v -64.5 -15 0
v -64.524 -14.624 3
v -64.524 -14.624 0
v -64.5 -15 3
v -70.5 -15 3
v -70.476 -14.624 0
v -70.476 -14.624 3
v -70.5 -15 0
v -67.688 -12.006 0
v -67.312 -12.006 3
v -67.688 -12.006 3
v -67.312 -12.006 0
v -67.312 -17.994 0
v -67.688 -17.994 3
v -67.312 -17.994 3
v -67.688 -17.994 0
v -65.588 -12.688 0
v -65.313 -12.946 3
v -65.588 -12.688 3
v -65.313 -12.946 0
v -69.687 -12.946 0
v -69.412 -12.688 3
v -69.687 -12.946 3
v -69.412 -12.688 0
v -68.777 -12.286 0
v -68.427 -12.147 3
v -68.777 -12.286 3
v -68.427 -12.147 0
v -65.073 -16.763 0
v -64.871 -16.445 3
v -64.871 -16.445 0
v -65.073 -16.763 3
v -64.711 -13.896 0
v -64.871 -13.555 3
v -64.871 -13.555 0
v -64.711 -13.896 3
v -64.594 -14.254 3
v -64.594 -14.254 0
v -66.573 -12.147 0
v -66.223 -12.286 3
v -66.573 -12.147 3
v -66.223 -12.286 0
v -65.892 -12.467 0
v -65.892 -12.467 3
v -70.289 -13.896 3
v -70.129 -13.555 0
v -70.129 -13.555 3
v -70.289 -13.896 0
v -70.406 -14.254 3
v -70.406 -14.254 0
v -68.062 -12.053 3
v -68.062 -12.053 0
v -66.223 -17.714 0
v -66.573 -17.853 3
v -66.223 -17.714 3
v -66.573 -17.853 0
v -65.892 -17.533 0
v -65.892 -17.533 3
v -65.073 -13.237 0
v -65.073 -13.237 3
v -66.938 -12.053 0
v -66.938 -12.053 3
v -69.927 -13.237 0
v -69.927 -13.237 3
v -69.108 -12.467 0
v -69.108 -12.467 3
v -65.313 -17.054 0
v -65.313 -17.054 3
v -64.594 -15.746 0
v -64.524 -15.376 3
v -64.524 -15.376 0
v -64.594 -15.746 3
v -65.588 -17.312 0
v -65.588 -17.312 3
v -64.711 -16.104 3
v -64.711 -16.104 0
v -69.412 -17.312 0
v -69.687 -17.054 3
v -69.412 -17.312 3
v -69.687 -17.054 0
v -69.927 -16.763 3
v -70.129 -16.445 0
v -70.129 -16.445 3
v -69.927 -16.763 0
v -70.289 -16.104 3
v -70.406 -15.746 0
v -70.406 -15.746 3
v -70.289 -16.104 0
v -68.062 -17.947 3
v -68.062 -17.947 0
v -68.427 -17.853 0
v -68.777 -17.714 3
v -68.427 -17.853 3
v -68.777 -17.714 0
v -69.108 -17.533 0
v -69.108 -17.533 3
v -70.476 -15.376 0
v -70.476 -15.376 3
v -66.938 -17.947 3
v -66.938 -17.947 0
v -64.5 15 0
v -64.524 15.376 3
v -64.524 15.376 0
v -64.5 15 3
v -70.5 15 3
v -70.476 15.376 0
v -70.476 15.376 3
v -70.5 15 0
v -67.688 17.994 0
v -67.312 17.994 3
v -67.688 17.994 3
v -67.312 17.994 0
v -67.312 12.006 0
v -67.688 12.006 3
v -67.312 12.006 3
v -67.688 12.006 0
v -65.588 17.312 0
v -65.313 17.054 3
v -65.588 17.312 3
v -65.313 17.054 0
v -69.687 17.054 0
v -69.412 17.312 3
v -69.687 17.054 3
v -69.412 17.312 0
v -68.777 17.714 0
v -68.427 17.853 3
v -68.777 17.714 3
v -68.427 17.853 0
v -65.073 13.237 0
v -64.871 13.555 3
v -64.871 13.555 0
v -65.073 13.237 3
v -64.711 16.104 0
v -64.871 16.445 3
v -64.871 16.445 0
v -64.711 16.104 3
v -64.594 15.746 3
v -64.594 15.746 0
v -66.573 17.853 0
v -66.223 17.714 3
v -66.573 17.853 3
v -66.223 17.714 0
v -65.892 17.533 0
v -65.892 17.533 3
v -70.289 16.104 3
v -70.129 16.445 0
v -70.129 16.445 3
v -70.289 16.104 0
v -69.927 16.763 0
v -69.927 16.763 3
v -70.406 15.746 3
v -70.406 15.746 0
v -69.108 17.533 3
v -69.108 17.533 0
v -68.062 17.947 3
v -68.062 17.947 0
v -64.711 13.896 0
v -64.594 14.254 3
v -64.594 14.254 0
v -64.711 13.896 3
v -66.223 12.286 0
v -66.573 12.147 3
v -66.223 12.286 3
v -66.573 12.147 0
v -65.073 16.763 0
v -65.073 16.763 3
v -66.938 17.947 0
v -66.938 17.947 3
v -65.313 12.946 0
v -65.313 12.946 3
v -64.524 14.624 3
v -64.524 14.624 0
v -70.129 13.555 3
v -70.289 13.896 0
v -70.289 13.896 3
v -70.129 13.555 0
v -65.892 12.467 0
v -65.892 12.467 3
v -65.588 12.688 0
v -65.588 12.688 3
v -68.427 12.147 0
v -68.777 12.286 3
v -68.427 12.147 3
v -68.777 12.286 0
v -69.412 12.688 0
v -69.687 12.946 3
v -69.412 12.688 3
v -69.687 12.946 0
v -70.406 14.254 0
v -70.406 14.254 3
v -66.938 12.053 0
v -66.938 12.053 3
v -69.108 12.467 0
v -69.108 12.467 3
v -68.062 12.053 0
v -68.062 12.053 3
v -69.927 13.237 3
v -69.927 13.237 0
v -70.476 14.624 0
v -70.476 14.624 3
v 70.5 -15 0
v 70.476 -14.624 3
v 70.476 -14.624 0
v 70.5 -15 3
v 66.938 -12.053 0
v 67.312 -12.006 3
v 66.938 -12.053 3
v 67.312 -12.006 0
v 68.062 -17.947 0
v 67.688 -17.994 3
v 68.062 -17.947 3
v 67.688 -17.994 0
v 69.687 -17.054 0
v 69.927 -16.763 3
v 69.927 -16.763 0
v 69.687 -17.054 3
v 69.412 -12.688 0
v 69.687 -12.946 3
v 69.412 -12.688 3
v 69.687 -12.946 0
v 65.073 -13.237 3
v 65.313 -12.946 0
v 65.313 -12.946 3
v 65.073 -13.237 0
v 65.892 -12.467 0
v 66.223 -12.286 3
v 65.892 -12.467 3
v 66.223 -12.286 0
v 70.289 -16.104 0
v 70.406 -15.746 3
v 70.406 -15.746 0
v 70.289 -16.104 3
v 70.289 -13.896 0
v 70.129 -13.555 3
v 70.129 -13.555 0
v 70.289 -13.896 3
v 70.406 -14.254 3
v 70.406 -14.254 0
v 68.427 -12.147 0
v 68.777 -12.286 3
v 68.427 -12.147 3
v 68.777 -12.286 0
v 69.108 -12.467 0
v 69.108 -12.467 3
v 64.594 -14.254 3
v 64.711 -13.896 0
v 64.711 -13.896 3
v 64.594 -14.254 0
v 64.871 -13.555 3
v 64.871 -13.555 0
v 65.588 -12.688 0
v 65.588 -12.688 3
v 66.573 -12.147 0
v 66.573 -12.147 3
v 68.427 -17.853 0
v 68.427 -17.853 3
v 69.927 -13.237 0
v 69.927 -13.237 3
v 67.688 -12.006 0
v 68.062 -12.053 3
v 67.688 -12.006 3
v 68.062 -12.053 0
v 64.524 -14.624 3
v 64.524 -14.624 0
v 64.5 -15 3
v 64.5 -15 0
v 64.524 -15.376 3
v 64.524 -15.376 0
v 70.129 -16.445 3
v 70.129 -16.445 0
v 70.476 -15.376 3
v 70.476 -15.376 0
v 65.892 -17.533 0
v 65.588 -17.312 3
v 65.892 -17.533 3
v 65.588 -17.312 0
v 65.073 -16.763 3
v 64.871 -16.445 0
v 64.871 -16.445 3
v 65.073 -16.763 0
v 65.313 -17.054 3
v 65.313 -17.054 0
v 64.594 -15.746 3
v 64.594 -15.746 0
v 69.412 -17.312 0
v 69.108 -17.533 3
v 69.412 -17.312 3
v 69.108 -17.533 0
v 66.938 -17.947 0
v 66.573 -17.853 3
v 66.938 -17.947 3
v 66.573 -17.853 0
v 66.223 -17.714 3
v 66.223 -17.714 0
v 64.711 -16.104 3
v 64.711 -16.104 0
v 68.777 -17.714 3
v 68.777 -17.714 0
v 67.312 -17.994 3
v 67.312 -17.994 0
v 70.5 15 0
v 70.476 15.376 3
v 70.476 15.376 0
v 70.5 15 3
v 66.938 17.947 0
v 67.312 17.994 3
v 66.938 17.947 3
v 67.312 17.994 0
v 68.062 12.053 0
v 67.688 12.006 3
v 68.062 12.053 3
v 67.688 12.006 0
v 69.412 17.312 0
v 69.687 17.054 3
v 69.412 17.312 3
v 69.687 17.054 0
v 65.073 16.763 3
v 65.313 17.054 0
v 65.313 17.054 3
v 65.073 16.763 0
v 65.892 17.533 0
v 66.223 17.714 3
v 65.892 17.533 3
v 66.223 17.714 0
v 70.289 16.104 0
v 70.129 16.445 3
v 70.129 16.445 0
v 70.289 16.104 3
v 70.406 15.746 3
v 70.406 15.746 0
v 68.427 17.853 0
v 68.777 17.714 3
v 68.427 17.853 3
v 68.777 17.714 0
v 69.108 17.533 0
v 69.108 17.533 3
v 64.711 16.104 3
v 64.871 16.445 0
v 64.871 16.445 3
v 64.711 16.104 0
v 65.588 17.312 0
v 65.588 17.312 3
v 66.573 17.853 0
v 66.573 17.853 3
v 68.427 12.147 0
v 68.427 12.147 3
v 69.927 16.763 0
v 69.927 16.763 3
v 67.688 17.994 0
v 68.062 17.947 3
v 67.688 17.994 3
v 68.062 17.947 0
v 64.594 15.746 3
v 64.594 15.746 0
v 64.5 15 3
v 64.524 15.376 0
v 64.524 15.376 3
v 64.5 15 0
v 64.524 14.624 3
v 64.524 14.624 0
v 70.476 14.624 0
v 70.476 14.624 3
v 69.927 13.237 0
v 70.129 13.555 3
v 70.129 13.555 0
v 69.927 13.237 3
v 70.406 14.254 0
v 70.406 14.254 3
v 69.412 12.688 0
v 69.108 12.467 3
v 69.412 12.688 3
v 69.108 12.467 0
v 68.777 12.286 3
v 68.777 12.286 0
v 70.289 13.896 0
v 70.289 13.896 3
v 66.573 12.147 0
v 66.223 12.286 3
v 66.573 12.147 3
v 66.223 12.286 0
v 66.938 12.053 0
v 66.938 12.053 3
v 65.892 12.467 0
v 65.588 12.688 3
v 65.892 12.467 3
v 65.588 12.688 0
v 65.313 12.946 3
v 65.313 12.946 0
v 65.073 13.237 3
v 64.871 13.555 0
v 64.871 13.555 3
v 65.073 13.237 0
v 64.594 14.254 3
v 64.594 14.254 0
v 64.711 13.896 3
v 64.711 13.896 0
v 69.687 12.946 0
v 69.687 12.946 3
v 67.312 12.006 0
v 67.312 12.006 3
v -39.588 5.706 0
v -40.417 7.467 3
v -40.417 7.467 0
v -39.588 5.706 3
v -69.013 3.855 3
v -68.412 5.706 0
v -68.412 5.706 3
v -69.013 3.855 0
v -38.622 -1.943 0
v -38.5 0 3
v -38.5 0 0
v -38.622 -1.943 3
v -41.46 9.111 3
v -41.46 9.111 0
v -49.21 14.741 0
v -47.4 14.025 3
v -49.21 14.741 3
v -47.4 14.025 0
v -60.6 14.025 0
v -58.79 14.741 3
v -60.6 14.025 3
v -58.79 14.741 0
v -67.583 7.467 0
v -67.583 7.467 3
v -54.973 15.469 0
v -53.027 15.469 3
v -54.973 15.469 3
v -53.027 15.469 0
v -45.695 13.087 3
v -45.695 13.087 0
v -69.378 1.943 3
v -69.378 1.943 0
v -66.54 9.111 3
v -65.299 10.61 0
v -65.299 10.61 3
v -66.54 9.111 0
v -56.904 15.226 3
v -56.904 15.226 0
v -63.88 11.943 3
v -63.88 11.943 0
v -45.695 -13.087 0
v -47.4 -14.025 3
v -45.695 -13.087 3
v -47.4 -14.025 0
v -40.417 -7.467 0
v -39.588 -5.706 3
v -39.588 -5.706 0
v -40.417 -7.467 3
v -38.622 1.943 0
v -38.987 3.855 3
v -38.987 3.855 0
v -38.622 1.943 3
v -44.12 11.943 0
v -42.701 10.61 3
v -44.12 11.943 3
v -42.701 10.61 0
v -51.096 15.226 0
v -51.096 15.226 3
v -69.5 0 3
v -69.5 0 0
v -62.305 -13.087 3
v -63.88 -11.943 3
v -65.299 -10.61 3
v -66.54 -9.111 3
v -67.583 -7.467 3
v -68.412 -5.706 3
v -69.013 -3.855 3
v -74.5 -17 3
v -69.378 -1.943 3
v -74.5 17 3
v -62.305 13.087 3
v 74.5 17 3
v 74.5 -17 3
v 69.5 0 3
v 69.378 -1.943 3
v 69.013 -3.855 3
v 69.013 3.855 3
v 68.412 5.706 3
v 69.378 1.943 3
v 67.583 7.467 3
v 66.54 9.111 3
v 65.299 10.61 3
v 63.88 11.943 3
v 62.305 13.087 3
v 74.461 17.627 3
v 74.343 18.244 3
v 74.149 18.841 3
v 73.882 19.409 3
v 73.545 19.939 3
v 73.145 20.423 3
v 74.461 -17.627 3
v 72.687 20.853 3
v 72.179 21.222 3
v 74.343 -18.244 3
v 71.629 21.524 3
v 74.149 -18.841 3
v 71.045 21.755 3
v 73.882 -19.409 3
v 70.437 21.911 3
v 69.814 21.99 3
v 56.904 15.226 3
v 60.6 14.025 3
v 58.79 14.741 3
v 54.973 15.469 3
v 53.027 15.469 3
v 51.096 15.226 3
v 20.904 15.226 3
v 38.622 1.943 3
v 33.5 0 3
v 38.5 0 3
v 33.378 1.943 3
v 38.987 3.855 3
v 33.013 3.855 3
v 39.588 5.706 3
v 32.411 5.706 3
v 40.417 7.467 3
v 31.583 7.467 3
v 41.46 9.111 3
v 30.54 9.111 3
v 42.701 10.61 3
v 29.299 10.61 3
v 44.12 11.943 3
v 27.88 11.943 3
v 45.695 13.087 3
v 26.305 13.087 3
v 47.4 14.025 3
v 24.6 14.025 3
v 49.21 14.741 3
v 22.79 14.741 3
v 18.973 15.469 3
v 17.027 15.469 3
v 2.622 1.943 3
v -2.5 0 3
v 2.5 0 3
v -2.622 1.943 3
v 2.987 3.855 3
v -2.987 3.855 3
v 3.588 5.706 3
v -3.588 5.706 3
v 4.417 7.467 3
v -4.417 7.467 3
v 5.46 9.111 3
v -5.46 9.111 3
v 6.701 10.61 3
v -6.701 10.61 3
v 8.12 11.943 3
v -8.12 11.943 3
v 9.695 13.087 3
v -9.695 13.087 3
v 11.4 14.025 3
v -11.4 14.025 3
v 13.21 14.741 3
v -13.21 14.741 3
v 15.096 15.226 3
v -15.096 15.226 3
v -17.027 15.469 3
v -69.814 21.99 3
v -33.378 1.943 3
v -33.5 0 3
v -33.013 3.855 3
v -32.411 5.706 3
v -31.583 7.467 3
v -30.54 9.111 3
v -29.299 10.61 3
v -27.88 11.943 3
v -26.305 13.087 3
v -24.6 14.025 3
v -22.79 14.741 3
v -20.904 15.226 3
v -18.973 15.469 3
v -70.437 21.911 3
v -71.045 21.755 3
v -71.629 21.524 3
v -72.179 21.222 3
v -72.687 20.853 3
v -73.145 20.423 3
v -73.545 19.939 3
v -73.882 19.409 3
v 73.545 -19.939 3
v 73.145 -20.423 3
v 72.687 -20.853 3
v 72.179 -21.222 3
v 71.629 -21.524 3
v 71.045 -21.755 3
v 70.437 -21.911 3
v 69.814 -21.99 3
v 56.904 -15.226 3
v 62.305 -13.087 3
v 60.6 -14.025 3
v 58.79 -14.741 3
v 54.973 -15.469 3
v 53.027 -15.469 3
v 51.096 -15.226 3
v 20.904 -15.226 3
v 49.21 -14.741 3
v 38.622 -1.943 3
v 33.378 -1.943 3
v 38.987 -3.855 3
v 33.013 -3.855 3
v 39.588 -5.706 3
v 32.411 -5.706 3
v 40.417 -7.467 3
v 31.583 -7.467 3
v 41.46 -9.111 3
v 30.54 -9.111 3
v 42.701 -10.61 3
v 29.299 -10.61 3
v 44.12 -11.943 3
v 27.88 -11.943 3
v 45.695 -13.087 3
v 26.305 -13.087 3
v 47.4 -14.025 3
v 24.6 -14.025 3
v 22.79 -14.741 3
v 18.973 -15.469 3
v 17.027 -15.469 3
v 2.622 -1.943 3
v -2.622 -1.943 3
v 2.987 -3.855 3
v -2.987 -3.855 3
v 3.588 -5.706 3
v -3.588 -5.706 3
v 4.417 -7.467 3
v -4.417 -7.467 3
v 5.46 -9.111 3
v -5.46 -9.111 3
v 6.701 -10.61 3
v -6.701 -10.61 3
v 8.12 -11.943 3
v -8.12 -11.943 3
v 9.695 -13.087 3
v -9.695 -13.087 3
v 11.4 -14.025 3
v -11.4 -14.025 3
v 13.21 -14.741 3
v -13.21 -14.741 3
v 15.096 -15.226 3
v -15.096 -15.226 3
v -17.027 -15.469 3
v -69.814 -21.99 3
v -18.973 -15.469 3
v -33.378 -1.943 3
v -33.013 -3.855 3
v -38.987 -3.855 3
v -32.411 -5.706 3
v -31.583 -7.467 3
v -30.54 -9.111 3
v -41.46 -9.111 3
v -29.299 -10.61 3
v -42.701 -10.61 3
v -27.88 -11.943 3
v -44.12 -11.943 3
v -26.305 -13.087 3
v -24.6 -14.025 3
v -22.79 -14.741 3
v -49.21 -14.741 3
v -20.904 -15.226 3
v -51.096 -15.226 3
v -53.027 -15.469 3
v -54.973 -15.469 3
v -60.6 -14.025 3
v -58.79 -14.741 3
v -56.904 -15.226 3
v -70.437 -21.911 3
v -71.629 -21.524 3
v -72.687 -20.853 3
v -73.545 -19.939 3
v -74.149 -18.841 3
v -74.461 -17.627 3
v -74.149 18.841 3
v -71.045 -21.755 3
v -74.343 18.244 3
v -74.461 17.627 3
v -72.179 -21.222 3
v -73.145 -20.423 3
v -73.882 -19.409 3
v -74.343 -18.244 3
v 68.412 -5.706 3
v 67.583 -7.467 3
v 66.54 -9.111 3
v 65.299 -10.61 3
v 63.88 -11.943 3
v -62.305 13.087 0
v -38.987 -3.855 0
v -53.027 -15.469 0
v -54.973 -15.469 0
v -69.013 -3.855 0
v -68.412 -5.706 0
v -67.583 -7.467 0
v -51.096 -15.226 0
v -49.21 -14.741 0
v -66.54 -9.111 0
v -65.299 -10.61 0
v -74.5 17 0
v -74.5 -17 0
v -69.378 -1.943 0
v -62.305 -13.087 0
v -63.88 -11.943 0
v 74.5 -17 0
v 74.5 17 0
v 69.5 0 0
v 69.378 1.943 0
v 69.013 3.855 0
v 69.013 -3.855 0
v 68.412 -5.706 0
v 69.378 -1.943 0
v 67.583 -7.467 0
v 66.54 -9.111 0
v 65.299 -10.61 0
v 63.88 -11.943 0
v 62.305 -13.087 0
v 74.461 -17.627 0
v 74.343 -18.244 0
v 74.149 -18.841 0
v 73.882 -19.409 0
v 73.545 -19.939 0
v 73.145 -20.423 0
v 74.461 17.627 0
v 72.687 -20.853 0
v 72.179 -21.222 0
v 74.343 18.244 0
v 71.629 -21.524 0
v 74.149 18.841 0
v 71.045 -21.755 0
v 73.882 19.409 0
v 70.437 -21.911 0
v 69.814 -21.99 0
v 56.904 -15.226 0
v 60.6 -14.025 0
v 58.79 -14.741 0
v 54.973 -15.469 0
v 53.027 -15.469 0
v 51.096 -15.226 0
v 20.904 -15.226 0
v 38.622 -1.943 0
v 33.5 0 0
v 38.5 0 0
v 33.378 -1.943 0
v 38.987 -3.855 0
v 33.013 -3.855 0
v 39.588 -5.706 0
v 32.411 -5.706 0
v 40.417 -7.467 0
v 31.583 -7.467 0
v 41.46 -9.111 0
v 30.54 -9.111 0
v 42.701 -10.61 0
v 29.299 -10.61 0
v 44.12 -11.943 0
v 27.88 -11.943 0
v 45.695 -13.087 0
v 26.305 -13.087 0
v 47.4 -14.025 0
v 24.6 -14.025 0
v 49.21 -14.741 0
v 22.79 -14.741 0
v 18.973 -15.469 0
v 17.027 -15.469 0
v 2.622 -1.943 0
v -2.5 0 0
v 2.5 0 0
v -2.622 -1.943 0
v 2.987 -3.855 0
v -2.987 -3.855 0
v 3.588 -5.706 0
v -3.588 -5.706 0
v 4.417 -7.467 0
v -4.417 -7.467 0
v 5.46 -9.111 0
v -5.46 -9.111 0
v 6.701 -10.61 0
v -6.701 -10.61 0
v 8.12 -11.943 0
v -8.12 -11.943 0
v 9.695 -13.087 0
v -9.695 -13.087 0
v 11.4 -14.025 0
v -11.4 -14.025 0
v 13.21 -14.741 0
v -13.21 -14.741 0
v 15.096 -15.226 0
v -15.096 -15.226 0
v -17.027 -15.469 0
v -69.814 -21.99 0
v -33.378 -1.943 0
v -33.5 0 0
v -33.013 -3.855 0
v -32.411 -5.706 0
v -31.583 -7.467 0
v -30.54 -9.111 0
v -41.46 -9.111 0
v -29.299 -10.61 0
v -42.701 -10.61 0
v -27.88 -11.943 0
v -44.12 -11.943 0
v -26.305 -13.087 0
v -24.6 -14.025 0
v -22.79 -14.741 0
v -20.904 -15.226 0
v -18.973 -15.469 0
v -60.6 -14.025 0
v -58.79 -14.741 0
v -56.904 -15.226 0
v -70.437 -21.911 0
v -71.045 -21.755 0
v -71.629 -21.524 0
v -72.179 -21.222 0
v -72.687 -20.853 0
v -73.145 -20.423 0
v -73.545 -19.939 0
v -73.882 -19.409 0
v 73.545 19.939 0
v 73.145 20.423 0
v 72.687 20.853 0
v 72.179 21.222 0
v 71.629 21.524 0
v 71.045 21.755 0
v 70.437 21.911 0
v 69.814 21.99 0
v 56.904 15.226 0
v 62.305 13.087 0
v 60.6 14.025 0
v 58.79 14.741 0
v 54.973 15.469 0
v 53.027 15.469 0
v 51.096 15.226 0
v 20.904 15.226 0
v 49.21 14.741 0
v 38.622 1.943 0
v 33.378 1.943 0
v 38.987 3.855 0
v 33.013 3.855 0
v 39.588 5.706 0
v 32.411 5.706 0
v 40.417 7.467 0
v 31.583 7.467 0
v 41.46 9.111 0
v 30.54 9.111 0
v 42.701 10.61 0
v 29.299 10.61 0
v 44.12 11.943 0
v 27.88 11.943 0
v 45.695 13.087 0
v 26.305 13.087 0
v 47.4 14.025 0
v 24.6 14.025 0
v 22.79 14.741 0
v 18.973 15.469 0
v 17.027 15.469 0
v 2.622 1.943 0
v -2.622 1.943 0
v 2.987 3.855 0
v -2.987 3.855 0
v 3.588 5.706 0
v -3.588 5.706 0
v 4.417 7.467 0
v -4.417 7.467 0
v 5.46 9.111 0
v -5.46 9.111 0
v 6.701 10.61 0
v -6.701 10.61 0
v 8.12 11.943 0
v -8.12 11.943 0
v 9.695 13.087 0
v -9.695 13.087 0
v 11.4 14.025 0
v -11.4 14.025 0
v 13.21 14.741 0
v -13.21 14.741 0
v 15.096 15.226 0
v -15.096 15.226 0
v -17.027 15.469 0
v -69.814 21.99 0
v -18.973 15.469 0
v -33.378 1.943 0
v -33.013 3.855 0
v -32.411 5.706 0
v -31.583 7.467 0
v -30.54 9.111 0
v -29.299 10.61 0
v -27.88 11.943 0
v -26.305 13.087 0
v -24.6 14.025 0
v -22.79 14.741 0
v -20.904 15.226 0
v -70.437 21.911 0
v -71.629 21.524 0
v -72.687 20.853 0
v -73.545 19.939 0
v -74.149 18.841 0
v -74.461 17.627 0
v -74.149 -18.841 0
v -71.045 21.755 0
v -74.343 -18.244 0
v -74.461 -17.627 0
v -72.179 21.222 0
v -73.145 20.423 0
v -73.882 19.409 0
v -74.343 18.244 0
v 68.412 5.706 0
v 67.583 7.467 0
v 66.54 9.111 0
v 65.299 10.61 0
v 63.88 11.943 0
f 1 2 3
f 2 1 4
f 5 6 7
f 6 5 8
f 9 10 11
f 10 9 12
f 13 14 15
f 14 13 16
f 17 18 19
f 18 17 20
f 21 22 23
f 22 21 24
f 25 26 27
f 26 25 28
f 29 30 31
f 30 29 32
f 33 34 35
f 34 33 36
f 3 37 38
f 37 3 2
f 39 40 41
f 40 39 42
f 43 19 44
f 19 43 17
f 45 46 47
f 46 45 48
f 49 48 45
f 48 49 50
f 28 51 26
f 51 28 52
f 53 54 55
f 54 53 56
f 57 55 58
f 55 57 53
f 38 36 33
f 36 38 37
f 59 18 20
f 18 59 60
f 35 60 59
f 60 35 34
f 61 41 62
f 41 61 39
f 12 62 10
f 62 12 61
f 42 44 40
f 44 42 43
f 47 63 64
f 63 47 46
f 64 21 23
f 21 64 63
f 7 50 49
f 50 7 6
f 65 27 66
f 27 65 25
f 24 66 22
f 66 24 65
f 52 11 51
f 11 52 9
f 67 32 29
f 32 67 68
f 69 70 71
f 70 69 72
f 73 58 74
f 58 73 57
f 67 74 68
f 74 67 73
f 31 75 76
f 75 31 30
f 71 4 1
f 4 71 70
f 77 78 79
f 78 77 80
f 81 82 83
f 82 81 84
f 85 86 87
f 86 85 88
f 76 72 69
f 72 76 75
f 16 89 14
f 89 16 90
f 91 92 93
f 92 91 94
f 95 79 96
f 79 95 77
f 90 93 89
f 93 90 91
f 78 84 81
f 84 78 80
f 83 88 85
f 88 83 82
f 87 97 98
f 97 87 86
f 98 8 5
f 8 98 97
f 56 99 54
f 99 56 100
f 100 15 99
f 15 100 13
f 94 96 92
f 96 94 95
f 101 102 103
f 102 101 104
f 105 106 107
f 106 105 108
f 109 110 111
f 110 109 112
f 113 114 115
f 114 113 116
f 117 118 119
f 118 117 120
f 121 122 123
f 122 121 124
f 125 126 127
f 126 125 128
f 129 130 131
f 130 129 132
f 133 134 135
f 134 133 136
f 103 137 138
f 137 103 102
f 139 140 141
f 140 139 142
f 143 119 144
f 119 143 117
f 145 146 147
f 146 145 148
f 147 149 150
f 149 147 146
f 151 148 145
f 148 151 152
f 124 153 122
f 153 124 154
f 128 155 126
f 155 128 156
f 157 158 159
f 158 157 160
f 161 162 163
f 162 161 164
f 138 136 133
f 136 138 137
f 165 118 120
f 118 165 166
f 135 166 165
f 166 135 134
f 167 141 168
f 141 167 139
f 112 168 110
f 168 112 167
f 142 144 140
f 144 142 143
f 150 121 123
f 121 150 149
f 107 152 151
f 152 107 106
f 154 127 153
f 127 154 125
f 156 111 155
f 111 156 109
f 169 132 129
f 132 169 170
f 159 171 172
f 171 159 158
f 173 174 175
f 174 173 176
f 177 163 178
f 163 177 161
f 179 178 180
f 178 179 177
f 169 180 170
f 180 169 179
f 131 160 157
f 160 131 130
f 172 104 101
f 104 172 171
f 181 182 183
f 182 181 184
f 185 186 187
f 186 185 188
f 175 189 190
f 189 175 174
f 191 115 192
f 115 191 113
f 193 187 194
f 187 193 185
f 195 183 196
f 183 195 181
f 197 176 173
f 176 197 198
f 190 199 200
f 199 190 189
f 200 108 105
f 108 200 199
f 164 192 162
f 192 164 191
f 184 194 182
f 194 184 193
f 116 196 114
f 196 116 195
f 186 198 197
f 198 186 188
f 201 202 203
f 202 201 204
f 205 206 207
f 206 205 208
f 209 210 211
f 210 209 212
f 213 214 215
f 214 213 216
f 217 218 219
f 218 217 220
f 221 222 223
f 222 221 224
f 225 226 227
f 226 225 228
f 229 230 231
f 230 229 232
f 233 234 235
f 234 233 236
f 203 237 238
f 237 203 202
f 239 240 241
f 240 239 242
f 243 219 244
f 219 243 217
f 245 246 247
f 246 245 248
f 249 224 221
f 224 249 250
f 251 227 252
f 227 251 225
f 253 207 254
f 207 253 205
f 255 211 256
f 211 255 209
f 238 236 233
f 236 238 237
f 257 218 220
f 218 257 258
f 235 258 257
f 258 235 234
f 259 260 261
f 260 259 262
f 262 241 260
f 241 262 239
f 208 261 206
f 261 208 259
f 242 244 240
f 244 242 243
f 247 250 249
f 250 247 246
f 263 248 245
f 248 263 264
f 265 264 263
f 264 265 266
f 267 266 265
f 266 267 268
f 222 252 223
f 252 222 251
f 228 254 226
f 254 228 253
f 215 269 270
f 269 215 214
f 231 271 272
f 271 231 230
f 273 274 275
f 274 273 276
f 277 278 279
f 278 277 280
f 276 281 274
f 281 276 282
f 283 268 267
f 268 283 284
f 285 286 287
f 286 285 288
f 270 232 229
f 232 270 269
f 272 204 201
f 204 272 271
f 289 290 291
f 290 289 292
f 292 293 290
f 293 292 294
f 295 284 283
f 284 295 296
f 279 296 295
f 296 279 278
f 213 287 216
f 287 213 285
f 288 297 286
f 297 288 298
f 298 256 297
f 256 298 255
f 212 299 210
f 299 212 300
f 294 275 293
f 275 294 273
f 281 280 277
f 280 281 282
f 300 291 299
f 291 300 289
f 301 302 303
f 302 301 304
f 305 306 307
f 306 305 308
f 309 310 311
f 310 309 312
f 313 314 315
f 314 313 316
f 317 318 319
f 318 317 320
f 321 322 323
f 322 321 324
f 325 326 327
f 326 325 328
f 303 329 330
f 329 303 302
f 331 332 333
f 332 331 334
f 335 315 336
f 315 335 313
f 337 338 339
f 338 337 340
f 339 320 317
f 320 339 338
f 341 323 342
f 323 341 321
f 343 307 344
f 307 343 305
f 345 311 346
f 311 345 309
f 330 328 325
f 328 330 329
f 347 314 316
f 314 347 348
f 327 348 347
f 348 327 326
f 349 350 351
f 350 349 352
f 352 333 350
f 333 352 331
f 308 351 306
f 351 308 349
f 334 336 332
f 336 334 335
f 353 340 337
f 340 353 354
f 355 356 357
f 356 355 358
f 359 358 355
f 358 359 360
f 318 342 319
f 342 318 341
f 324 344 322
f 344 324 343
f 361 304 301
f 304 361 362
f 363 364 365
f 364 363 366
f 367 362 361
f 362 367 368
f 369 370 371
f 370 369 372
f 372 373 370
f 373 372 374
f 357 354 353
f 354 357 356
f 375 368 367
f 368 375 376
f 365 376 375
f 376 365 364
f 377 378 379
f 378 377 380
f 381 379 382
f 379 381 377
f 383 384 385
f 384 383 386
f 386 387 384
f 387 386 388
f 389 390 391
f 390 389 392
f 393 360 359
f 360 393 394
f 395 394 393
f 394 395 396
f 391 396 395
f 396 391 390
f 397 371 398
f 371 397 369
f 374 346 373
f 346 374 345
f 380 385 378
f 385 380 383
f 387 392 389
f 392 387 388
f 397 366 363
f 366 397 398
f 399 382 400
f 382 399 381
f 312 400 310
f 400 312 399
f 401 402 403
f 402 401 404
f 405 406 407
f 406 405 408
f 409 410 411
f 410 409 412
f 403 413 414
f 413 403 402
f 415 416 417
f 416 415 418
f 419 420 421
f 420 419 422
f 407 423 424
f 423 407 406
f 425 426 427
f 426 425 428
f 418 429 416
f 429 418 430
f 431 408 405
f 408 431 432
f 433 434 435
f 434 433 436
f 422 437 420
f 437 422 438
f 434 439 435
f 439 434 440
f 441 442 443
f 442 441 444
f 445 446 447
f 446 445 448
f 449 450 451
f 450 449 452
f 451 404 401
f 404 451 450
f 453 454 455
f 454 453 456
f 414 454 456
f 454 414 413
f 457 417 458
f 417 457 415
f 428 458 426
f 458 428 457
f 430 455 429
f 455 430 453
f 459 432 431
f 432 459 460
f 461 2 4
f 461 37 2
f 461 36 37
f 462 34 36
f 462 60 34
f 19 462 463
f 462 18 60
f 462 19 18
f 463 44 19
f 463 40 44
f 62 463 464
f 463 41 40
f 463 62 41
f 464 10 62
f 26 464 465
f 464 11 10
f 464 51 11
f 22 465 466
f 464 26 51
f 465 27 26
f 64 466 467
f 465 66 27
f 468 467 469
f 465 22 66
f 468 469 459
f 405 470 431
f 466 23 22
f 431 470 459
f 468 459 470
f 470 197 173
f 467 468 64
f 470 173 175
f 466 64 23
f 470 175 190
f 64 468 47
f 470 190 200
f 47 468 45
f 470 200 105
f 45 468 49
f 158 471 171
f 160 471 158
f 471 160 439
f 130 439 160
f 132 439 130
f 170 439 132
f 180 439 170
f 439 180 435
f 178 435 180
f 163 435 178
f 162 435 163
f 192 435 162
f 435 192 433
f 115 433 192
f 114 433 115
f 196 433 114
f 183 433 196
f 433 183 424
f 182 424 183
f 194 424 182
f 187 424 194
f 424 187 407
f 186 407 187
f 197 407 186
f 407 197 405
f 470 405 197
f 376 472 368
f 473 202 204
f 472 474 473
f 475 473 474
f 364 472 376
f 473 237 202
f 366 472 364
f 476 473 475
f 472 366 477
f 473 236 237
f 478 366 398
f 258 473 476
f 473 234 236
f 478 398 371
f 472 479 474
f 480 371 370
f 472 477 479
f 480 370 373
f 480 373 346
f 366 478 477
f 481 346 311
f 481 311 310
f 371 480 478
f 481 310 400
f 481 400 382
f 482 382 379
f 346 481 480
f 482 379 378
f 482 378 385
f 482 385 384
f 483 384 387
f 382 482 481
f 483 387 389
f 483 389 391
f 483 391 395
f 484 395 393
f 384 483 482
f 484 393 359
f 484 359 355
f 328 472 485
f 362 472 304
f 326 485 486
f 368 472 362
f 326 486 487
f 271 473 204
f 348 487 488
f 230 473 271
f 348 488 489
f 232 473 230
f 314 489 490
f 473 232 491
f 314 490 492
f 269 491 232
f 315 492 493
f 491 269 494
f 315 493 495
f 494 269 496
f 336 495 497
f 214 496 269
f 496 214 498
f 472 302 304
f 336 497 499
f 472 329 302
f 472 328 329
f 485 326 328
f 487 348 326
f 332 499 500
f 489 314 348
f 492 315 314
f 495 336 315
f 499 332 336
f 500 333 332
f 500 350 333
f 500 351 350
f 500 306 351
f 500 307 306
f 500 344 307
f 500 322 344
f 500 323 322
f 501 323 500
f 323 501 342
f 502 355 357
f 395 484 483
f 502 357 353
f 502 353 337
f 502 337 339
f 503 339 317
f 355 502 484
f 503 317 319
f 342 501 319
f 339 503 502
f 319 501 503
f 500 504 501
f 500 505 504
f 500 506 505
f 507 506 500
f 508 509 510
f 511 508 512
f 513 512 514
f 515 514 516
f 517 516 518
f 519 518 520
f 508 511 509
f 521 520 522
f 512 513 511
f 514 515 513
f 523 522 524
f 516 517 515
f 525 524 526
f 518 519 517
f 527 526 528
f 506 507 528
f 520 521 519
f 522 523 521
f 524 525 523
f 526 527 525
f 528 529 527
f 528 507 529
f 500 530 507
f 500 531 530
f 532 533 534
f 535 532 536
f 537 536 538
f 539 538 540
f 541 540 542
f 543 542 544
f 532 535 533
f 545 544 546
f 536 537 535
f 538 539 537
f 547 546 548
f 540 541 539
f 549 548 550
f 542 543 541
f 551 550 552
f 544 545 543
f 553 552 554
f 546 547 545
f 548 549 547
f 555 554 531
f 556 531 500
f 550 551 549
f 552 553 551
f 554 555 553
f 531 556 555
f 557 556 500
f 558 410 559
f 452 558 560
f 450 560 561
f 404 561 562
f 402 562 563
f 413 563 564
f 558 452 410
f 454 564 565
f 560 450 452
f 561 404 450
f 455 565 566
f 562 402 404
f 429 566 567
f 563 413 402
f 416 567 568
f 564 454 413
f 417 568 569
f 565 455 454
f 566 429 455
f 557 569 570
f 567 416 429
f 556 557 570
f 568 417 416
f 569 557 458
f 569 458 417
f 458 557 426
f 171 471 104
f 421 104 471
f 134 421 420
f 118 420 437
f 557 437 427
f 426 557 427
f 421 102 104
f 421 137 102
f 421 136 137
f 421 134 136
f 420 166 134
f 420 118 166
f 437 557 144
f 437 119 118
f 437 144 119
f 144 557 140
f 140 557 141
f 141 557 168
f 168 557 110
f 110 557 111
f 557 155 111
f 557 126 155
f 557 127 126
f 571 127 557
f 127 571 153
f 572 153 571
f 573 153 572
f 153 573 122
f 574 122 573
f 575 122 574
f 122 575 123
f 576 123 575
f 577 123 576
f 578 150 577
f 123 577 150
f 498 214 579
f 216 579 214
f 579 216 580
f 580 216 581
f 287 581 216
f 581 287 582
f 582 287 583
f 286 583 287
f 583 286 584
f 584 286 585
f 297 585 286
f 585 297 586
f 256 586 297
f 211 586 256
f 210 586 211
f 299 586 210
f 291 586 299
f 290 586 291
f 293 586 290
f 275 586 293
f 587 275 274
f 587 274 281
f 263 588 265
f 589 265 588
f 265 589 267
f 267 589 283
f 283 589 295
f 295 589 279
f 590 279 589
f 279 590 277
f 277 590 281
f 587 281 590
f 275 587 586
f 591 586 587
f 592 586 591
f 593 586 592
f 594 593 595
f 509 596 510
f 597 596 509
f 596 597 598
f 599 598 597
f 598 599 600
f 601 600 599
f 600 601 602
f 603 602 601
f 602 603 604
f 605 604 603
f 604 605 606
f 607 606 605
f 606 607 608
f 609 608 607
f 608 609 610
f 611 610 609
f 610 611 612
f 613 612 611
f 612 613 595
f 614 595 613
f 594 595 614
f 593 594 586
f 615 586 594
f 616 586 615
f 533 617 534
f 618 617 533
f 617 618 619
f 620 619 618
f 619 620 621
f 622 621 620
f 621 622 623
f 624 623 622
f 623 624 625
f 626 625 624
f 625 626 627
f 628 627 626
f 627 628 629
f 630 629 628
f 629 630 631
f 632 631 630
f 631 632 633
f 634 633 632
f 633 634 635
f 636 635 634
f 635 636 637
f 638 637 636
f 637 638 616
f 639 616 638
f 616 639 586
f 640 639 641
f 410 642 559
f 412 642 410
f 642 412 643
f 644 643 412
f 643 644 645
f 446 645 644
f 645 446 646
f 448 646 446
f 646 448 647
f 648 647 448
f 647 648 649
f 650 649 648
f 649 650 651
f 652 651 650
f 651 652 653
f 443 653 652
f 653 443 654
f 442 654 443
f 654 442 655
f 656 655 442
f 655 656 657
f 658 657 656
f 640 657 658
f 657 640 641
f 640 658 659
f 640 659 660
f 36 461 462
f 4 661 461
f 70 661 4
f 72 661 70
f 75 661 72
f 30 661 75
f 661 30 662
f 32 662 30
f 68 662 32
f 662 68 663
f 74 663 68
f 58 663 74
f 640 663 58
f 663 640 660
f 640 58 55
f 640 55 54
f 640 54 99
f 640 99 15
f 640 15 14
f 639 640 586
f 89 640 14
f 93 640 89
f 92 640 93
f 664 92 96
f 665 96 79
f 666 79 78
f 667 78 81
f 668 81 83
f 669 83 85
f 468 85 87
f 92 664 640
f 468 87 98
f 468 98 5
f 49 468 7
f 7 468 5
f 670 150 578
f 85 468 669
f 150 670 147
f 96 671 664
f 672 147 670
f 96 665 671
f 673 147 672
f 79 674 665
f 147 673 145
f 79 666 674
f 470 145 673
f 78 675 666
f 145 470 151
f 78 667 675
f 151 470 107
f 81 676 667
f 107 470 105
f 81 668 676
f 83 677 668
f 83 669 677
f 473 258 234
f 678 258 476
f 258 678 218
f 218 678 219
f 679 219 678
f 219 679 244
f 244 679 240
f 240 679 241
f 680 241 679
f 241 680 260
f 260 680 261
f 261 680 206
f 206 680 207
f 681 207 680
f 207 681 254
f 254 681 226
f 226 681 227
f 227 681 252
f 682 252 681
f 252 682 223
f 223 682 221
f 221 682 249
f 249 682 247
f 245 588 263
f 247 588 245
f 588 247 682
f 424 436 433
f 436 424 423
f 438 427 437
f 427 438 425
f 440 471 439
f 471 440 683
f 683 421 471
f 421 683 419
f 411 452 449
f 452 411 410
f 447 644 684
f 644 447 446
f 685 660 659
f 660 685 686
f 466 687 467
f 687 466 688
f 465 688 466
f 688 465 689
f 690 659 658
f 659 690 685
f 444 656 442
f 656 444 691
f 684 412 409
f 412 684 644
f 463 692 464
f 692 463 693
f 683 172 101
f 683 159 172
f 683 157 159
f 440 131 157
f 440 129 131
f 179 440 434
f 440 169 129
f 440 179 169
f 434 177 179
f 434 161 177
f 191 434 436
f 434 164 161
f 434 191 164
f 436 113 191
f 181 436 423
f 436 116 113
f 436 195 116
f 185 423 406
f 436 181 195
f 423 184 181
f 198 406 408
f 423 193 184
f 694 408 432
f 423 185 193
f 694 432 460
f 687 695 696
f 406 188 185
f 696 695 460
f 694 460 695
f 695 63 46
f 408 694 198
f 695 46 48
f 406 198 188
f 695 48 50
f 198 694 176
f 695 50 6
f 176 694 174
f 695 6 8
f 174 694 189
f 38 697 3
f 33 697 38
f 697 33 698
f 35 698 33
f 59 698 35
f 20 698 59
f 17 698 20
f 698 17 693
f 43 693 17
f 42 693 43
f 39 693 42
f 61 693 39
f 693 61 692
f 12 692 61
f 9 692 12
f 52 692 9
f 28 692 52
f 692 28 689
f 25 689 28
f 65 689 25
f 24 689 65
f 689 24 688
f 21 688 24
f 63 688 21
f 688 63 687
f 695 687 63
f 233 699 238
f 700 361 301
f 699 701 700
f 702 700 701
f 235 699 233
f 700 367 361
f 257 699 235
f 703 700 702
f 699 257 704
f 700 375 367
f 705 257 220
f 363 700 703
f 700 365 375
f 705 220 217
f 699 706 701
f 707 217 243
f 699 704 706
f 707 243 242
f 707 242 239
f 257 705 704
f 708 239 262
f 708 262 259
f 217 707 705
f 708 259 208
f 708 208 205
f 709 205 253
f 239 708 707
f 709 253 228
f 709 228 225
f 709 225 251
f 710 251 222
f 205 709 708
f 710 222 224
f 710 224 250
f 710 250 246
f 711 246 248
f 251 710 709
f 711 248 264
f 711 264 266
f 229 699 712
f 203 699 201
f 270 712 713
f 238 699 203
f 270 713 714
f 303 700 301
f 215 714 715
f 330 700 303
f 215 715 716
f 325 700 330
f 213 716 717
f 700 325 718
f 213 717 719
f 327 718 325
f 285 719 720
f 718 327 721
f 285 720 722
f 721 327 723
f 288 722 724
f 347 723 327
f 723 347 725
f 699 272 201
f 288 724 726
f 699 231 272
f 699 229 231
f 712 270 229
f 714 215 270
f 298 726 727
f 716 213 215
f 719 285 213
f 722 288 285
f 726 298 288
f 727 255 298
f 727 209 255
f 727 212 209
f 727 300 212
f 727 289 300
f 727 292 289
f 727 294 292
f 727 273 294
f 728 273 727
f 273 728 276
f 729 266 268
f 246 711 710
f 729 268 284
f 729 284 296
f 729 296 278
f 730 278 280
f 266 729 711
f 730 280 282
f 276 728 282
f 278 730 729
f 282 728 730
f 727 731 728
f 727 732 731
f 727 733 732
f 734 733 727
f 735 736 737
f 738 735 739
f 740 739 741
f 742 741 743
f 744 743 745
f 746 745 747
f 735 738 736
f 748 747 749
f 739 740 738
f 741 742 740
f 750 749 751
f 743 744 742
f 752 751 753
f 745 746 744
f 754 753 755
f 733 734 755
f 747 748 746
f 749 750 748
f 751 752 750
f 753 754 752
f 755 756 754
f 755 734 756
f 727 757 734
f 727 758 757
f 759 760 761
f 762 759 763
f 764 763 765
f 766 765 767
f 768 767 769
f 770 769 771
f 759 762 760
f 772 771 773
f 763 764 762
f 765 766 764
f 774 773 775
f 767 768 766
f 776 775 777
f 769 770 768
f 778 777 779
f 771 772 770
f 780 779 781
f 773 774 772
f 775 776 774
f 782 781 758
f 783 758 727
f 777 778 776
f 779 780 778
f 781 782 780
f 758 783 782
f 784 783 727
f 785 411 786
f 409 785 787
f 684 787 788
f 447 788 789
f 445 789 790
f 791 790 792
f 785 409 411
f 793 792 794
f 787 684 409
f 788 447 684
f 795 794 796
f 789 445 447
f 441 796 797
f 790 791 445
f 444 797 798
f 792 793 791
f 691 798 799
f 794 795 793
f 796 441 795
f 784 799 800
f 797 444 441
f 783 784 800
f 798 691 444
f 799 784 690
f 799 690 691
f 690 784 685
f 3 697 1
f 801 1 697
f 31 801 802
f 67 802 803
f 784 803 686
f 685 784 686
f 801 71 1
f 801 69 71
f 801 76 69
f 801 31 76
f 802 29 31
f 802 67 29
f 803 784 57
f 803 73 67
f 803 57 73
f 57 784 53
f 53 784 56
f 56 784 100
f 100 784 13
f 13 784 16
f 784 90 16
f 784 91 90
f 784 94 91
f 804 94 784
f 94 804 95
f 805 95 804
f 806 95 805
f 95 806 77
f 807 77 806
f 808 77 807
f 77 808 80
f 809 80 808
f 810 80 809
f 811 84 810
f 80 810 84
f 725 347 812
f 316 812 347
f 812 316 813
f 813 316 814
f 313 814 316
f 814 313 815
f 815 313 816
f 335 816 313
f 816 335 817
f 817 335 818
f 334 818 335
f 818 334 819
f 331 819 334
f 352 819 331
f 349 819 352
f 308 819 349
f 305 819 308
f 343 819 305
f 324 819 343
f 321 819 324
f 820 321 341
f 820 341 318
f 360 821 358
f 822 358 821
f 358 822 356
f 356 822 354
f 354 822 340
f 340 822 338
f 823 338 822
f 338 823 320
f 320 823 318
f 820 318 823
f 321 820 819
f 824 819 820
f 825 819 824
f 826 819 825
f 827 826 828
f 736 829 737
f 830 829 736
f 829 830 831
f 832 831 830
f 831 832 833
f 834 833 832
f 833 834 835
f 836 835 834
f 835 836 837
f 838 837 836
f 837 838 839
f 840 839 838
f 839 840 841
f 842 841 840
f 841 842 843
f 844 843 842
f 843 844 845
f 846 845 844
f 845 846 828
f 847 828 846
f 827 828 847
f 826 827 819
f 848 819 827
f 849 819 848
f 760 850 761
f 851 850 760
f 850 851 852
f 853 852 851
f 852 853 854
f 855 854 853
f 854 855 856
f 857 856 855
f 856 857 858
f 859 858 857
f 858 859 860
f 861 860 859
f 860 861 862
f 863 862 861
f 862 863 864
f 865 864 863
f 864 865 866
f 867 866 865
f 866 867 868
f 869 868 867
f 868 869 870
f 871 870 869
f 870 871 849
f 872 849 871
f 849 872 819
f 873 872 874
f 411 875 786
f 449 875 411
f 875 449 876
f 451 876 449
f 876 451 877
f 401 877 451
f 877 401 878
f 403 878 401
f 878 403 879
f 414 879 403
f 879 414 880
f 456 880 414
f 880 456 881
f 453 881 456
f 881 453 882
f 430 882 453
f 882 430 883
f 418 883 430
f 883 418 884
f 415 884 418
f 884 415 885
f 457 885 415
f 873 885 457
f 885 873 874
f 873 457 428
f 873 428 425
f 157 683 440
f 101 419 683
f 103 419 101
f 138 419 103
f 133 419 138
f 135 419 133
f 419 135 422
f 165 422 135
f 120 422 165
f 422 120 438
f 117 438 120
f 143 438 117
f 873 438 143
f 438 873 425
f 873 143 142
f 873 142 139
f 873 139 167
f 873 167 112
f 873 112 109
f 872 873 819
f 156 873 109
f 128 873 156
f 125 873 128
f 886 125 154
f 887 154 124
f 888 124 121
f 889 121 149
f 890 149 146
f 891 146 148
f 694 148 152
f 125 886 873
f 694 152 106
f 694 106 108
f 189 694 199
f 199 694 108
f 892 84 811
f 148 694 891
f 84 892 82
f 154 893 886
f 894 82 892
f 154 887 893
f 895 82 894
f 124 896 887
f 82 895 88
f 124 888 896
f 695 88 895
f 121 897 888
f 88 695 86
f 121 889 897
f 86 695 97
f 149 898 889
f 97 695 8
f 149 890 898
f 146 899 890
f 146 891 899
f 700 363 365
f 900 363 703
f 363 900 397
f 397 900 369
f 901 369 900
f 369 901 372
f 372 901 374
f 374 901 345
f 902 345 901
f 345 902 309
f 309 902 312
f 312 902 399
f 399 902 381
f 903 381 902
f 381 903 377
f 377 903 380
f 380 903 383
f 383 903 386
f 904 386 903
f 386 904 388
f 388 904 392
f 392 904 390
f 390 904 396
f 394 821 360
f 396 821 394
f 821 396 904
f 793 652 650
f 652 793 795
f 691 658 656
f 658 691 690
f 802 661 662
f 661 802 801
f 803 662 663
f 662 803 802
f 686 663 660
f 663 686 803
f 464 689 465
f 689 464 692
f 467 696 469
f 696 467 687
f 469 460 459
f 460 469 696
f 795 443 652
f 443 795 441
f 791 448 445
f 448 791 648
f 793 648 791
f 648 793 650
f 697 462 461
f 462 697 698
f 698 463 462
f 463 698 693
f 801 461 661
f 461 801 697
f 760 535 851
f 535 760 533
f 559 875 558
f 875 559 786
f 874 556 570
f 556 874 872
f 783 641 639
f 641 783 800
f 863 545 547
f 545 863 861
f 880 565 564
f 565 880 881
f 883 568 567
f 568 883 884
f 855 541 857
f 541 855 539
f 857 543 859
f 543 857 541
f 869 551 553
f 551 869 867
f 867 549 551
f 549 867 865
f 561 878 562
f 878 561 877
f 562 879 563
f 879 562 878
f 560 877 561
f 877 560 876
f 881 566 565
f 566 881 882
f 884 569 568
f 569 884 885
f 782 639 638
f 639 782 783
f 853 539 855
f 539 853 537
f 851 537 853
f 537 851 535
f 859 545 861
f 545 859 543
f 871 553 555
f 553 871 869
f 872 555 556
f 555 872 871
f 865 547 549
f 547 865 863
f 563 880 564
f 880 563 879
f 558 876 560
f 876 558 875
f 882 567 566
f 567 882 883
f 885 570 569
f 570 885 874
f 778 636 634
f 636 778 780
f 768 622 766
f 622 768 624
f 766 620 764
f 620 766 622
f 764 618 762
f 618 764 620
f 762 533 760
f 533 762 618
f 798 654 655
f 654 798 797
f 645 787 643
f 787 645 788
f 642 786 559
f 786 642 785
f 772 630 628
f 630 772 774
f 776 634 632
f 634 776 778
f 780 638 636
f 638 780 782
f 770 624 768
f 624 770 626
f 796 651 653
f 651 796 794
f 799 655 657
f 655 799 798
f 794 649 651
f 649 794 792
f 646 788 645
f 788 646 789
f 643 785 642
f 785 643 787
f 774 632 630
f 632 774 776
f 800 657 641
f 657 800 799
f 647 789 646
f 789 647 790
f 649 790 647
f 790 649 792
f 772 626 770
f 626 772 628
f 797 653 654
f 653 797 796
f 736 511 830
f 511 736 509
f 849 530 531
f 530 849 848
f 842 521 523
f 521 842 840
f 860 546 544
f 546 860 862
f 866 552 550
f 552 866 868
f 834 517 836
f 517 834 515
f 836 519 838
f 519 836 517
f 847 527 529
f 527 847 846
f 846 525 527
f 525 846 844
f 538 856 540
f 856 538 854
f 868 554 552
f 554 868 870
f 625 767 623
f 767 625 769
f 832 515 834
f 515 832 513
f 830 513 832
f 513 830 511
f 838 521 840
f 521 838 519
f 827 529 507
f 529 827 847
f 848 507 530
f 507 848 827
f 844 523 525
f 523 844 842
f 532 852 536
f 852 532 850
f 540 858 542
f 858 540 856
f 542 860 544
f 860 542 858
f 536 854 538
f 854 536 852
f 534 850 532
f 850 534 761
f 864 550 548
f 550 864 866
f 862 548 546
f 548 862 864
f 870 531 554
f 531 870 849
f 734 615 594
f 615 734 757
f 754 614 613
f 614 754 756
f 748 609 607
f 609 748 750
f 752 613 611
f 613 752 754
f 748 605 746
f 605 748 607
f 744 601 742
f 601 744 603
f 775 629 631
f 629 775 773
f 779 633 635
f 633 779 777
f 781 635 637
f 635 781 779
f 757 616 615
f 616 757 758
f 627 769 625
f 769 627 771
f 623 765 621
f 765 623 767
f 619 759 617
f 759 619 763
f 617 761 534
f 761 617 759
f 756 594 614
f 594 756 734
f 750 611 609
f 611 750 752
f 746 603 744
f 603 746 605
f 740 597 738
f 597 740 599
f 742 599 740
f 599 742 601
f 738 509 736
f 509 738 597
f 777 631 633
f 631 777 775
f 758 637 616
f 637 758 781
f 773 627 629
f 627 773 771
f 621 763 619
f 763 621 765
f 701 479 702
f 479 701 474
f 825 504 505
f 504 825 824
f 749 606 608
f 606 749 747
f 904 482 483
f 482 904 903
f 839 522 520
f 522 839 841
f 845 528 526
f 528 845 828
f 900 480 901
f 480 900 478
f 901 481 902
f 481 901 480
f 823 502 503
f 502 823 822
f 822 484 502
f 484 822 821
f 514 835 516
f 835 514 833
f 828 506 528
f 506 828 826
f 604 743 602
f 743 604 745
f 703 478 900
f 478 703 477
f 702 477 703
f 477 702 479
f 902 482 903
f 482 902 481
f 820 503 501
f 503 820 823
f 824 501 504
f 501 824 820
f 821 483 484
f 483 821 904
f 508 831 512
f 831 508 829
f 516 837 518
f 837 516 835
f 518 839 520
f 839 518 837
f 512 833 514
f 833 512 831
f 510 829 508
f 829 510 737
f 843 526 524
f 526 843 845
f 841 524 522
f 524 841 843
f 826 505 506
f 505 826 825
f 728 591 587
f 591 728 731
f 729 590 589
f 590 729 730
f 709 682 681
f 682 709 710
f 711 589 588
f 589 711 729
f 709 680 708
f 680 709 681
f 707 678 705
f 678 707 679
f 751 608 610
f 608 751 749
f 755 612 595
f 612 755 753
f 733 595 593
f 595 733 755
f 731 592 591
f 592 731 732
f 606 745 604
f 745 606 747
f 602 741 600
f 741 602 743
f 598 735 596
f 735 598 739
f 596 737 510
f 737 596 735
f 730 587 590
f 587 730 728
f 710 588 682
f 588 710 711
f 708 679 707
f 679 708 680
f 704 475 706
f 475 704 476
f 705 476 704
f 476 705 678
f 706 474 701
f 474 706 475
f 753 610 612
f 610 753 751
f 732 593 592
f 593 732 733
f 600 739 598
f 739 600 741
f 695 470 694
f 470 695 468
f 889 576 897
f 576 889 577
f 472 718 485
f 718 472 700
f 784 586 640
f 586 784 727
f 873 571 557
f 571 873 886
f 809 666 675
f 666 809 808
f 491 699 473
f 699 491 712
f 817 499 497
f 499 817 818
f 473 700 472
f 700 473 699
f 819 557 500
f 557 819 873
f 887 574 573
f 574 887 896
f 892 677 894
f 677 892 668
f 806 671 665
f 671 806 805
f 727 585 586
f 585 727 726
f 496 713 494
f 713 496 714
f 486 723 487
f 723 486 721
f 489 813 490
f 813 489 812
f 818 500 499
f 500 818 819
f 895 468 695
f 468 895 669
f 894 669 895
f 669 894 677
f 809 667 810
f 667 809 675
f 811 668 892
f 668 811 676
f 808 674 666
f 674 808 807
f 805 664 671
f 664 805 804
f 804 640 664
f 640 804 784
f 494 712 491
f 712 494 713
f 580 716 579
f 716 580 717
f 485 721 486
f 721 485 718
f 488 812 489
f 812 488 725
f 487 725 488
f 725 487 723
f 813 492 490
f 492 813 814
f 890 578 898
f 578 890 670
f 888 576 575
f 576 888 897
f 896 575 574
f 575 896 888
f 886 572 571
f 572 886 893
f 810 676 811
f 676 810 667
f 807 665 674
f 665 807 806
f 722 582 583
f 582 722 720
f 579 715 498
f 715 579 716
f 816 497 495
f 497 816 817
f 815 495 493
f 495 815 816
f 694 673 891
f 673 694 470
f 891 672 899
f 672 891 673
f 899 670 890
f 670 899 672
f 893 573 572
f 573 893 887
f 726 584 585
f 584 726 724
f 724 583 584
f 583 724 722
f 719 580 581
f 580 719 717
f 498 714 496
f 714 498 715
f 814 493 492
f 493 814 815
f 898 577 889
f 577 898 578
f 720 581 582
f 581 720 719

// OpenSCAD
$fn = 50;


difference() {
	union() {
		hull() {
			translate(v = [-69.5000000000, 17.0000000000, 0]) {
				cylinder(h = 3, r = 5);
			}
			translate(v = [69.5000000000, 17.0000000000, 0]) {
				cylinder(h = 3, r = 5);
			}
			translate(v = [-69.5000000000, -17.0000000000, 0]) {
				cylinder(h = 3, r = 5);
			}
			translate(v = [69.5000000000, -17.0000000000, 0]) {
				cylinder(h = 3, r = 5);
			}
		}
	}
	union() {
		#translate(v = [-67.5000000000, -15.0000000000, -100.0000000000]) {
			cylinder(h = 200, r = 3.0000000000);
		}
		#translate(v = [-67.5000000000, 15.0000000000, -100.0000000000]) {
			cylinder(h = 200, r = 3.0000000000);
		}
		#translate(v = [67.5000000000, -15.0000000000, -100.0000000000]) {
			cylinder(h = 200, r = 3.0000000000);
		}
		#translate(v = [67.5000000000, 15.0000000000, -100.0000000000]) {
			cylinder(h = 200, r = 3.0000000000);
		}
		#translate(v = [-54.0000000000, 0, 0]) {
			cylinder(h = 3, r = 15.5000000000);
		}
		#translate(v = [-18.0000000000, 0, 0]) {
			cylinder(h = 3, r = 15.5000000000);
		}
		#translate(v = [18.0000000000, 0, 0]) {
			cylinder(h = 3, r = 15.5000000000);
		}
		#translate(v = [54.0000000000, 0, 0]) {
			cylinder(h = 3, r = 15.5000000000);
		}
	}
}
